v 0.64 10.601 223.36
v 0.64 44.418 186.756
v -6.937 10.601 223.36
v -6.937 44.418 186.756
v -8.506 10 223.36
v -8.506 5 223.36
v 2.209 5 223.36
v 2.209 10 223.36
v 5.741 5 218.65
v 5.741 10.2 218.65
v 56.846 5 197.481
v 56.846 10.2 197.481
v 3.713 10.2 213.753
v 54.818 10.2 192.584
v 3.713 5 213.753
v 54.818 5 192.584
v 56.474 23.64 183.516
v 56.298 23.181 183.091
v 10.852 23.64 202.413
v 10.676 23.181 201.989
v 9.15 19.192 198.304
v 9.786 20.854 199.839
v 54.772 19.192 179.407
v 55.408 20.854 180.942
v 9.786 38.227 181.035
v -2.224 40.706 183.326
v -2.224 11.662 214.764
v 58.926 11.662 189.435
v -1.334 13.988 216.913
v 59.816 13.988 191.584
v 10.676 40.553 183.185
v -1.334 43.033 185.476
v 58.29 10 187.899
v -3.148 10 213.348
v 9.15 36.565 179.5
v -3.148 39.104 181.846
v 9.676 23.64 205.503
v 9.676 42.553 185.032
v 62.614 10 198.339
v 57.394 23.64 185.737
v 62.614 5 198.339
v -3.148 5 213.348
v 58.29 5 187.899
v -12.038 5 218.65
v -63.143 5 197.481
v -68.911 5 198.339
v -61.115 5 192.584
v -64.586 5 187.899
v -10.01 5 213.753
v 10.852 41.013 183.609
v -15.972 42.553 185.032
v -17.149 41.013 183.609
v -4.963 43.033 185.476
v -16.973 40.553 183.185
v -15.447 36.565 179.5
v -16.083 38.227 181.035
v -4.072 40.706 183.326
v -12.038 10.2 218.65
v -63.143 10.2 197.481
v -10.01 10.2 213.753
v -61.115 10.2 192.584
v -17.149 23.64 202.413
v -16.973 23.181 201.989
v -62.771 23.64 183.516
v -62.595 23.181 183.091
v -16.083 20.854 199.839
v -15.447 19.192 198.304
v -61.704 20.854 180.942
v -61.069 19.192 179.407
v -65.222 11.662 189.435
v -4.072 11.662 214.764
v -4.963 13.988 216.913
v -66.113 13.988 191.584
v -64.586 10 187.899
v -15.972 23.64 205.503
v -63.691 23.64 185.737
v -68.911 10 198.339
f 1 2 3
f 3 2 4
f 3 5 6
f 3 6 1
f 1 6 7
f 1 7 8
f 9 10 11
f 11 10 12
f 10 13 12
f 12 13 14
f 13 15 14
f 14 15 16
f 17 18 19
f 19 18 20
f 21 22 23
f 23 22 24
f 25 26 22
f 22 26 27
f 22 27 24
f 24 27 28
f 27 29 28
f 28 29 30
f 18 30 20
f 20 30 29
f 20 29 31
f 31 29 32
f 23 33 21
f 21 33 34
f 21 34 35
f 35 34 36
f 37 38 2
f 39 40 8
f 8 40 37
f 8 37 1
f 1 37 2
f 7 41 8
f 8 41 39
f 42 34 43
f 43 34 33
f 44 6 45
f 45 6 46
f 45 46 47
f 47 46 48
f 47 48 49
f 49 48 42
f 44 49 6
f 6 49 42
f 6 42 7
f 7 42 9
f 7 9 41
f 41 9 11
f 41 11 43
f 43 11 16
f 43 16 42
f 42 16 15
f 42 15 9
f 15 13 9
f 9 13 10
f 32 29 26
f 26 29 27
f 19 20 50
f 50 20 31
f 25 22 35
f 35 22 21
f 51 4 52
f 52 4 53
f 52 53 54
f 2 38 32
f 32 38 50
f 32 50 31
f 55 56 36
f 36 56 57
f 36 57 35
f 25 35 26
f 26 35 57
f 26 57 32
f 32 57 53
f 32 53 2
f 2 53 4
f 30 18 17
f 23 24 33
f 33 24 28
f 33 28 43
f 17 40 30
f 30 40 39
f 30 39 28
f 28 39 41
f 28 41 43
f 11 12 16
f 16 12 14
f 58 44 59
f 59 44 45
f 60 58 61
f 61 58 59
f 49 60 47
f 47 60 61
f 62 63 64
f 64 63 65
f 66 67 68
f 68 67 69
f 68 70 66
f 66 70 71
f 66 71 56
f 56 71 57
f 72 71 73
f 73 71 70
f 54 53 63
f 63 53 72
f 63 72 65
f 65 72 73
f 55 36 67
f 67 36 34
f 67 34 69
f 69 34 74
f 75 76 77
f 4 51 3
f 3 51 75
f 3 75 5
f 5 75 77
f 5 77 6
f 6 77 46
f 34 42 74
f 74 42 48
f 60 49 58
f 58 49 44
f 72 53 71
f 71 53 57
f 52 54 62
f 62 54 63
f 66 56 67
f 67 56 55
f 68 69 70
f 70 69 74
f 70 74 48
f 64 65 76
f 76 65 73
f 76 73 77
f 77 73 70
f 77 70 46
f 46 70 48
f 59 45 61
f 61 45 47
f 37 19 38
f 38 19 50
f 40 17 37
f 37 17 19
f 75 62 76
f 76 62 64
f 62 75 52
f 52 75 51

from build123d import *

# Parameters (mm, degrees)
SKETCH1_W                = 214.0895226738578
SKETCH1_H                = 271.0335668448457
BOSS_EXTRUDE1_DEPTH      = 10
SKETCH3_W                = 107.0447613369289
SKETCH3_H                = 271.0335668448457
CUT_EXTRUDE1_DEPTH       = 252.25359017903727
CUT_EXTRUDE2_DEPTH       = 249.55642867000518
BOSS_EXTRUDE3_DEPTH      = 40
CUT_EXTRUDE3_START       = -165.689856025
CUT_EXTRUDE3_DEPTH       = 205.862728092
CUT_EXTRUDE4_DEPTH       = 250.9605933606232
CUT_EXTRUDE5_DEPTH       = 250.96059336062322
BOSS_EXTRUDE5_DEPTH      = 45.000000000000014
CUT_EXTRUDE7_DEPTH       = 253.78419033582136
CUT_EXTRUDE9_DEPTH       = 253.78419033582136
CUT_EXTRUDE10_DEPTH      = 105
BOSS_EXTRUDE6_DEPTH      = 13.546139965279659
BOSS_EXTRUDE7_DEPTH      = 30
CUT_EXTRUDE12_DEPTH      = 30
CUT_EXTRUDE13_DEPTH      = 30
CUT_EXTRUDE14_DEPTH      = 30
CUT_EXTRUDE14_DEPTH_BACK = 101.66514829221025
BOSS_EXTRUDE8_DEPTH      = 5.2
CHAMFER1_START           = 223.359720619
CHAMFER1_OUTLINE_W       = 14
CHAMFER1_OUTLINE_H       = 9.000000000000002
CHAMFER1_DEPTH           = 3.640279381
CHAMFER3_START           = 159.35770891
CHAMFER3_OUTLINE_W       = 10
CHAMFER3_OUTLINE_H       = 51.999999999999986
CHAMFER3_DEPTH           = 1.64229109
CHAMFER4_SIZE            = 1.7


with BuildPart() as part:
    # Sketch1 → Boss-Extrude1 (new body)
    with BuildSketch(Plane(origin=(0, 0, 0), x_dir=(1, 0, 0), z_dir=(0, 1, 0))):
        with Locations((-3.148375333439077, -90.06211454589605)):
            Rectangle(SKETCH1_W, SKETCH1_H)
    extrude(amount=BOSS_EXTRUDE1_DEPTH)

    # Sketch3 → Cut-Extrude1 (cut, through all)
    with BuildSketch(Plane(origin=(0, 10, 0), x_dir=(1, 0, 0), z_dir=(0, 1, 0))):
        with Locations((-56.67075600190353, -90.06211454589605)):
            Rectangle(SKETCH3_W, SKETCH3_H)
    extrude(amount=-CUT_EXTRUDE1_DEPTH, mode=Mode.SUBTRACT)

    # Sketch4 → Cut-Extrude2 (cut, through all)
    with BuildSketch(Plane(origin=(0, 10, 0), x_dir=(1, 0, 0), z_dir=(0, 1, 0))):
        Polygon((103.89638600348982, -181.2395060415717), (100.8349185445691, -173.8484697814814), (9.99658424143476, 45.454668876526796), (103.89638600348982, 45.454668876526796), align=None)
    extrude(amount=-CUT_EXTRUDE2_DEPTH, mode=Mode.SUBTRACT)

    # Sketch6 → Boss-Extrude3 (add, along a direction that is not the sketch's normal)
    with BuildSketch(Plane(origin=(0, 10, 0), x_dir=(1, 0, 0), z_dir=(0, 1, 0))):
        Polygon((99.57206321776432, -170.7996673241942), (103.89638600348982, -181.2395060415717), (-3.148375333439077, -225.57889796831887), (-3.148375333439077, -213.34786610501484), align=None)
    extrude(amount=BOSS_EXTRUDE3_DEPTH, dir=(-0.2705980500730979, 0.7071067811865489, -0.6532814824381872))

    # Cut-Extrude3: read off the stored shape, not the designer's step
    # Cut-Extrude3 outline → Cut-Extrude3 (cut)
    with BuildSketch(Plane(origin=(0, 0, 0), x_dir=(1, 0, 0), z_dir=(0, 0.6785983445458481, -0.7345095552677544)).offset(CUT_EXTRUDE3_START)):
        Polygon((-3.148375333, -165), (-3.148375333, -152.122604304), (-13.972297336, -155.165042499), (-15, -155.45391393), (-15, -165), align=None)
    extrude(amount=CUT_EXTRUDE3_DEPTH, mode=Mode.SUBTRACT)

    # Sketch8 → Cut-Extrude4 (cut, through all)
    with BuildSketch(Plane(origin=(0, 10, 0), x_dir=(1, 0, 0), z_dir=(0, 1, 0))):
        Polygon((-3.1483753334390765, -225.5788979683189), (103.89638600348982, -181.2395060415717), (103.89638600348982, -225.57889796831887), align=None)
    extrude(amount=-CUT_EXTRUDE4_DEPTH, mode=Mode.SUBTRACT)

    # Sketch9 → Cut-Extrude5 (cut, through all)
    with BuildSketch(Plane(origin=(0, 10, 0), x_dir=(1, 0, 0), z_dir=(0, 1, 0))):
        Polygon((-3.1483753334390765, -213.34786610501484), (99.57206321776434, -170.7996673241942), (9.99658424143476, 45.454668876526796), (-3.148375333439077, 45.454668876526796), align=None)
    extrude(amount=-CUT_EXTRUDE5_DEPTH, mode=Mode.SUBTRACT)

    # Sketch13 → Boss-Extrude5 (add)
    with BuildSketch(Plane.XZ):
        Polygon((-3.1483753334390765, 225.5788979683189), (-3.1483753334390765, 213.34786610501484), (99.57206321776434, 170.7996673241942), (103.89638600348982, 181.23950604157167), align=None)
    extrude(amount=BOSS_EXTRUDE5_DEPTH)

    # Sketch14 → Cut-Extrude7 (cut, through all)
    with BuildSketch(Plane(origin=(24.60327067321852, 0, -10.191008391583336), x_dir=(-0.38268343236508967, 0, -0.9238795325112868), z_dir=(0.9238795325112867, 0, -0.3826834323650896))):
        Polygon((-178.9186244729457, 38.28427124746196), (-173.2686244729457, 32.63427124746195), (-167.6186244729457, 38.28427124746196), align=None)
    extrude(amount=-CUT_EXTRUDE7_DEPTH, mode=Mode.SUBTRACT)

    # Sketch21 → Cut-Extrude9 (cut, through all)
    with BuildSketch(Plane(origin=(24.60327067321852, 0, -10.191008391583336), x_dir=(-0.38268343236508967, 0, -0.9238795325112868), z_dir=(0.9238795325112867, 0, -0.3826834323650896))):
        Polygon((-178.9186244729457, 38.28427124746196), (-173.26862447294567, 32.63427124746195), (-186.71050756498246, 19.192388155425135), (-188.37220850077088, 20.854089091213513), (-197.564596656196, 11.661700935788378), (-199.8911947846192, 13.988299064211581), (-190.69880662919408, 23.180687219636717), (-192.3605075649825, 24.84238815542509), align=None)
    extrude(amount=-CUT_EXTRUDE9_DEPTH, mode=Mode.SUBTRACT)

    # Sketch26 → Cut-Extrude10 (cut)
    with BuildSketch(Plane(origin=(24.60327067321852, 0, -10.191008391583336), x_dir=(-0.38268343236508967, 0, -0.9238795325112868), z_dir=(0.9238795325112867, 0, -0.3826834323650896))):
        Polygon((-195.9028957204076, -45.000000000000014), (-207.2028957204075, -45.000000000000014), (-207.20289572040753, 4.999999999999999), (-204.20289572040753, 4.999999999999999), (-204.20289572040753, 10.2), (-198.9028957204076, 10.200000000000001), (-198.9028957204076, 5), (-195.9028957204076, 5), align=None)
    extrude(amount=-CUT_EXTRUDE10_DEPTH, mode=Mode.SUBTRACT)

    # Sketch27 → Boss-Extrude6 (add, along a direction that is not the sketch's normal)
    with BuildSketch(Plane(origin=(35.57097911044696, -92.95144786020374, 85.87594019533113), x_dir=(0.9626924198811571, 0.19875685341551327, -0.18362738881693624), z_dir=(-0.2705980500730966, 0.7071067811865525, -0.6532814824381838))):
        Polygon((-40.21986009681666, -165.94075499699434), (-39.260177114555994, -165.65967035927952), (-38.33532246822035, -168.81732163602243), (-40.219860096816646, -169.36928992803706), align=None)
    extrude(amount=BOSS_EXTRUDE6_DEPTH, dir=(0, 0.6785983445458494, -0.7345095552677533))

    # Sketch28 → Boss-Extrude7 (add, along a direction that is not the sketch's normal)
    with BuildSketch(Plane(origin=(32.05320445949652, -83.75905970477851, 77.38328092363429), x_dir=(0.9626924198811573, 0.1987568534155131, -0.18362738881693524), z_dir=(-0.27059805007309584, 0.7071067811865541, -0.6532814824381823))):
        Polygon((-23.13019805487444, -160.93530887309606), (-23.79074695350427, -158.6800538647835), (-36.56575980652385, -162.4217684996877), (-36.565759806523836, -170.74775403356227), (-21.544794509909032, -166.34821515815156), (-22.205343408538862, -164.09296014983897), (-34.68122217792752, -167.7470604401317), (-35.606076824263106, -164.58940916338878), align=None)
    extrude(amount=BOSS_EXTRUDE7_DEPTH, dir=(0, 0.6785983445458483, -0.7345095552677544))

    # Sketch29 → Cut-Extrude12 (cut)
    with BuildSketch(Plane(origin=(41.559974826961344, 108.60144786020382, 100.33465487913432), x_dir=(0.9626924198811563, -0.1987568534155138, -0.18362738881693985), z_dir=(0.2705980500730995, 0.7071067811865461, 0.6532814824381895))):
        Polygon((-46.44094960872295, -107.03174707988727), (-31.419984312108156, -107.03174707988727), (-31.41998431210815, -102.63220820447661), align=None)
    extrude(amount=-CUT_EXTRUDE12_DEPTH, mode=Mode.SUBTRACT)

    # Sketch30 → Cut-Extrude13 (cut)
    with BuildSketch(Plane(origin=(-72.40408024046648, 0, 29.990752006750984), x_dir=(-0.3826834323650857, 0, -0.9238795325112884), z_dir=(0.9238795325112884, 0, -0.3826834323650857))):
        Polygon((-207.20289572040787, 4.610357956966736), (-207.20289572040795, -45.000000000000014), (-195.90289572040788, -45.000000000000014), (-195.90289572040788, 4.6103579569667374), (-195.9028957204076, 5), (-207.20289572040755, 4.999999999999999), align=None)
    extrude(amount=-CUT_EXTRUDE13_DEPTH, mode=Mode.SUBTRACT)

    # Sketch31 → Cut-Extrude14 (cut, two sides: drawn at the far end of the back side and taken through both)
    with BuildSketch(Plane(origin=(74.968792544546, 0, 180.99067571577757), x_dir=(-0.9238795325112865, 0, 0.38268343236509056), z_dir=(-0.38268343236509056, 0, -0.9238795325112865)).offset(-CUT_EXTRUDE14_DEPTH_BACK)):
        Polygon((18.0534132200626, -1.4270293234233122), (-26.630388278374163, -1.4270293234233173), (-26.630388278374163, 30.311404517874507), (18.0534132200626, 30.311404517874507), align=None)
    extrude(amount=CUT_EXTRUDE14_DEPTH + CUT_EXTRUDE14_DEPTH_BACK, mode=Mode.SUBTRACT)

    # Sketch33 → Boss-Extrude8 (add)
    with BuildSketch(Plane(origin=(1.28e-15, 10.200000000000065, 3.08e-15), x_dir=(-1, 1.3e-16, 0), z_dir=(-1.3e-16, -1, -3e-16))):
        Polygon((-61.46588606719166, -195.56761797257994), (-56.84648840463523, -197.48103513440537), (-54.81826621310026, -192.5844736120956), (-59.437663875656696, -190.67105645027016), align=None)
    extrude(amount=BOSS_EXTRUDE8_DEPTH)

    # Mirror4: part across plane


with BuildPart() as part_1:
    add(part.part)
    add(part.part.mirror(Plane(origin=(-3.148375333439077, 0, 225.57889796831887), x_dir=(0, 0, 1), z_dir=(1, 0, 0))))

    # Chamfer1: read off the stored shape, not the designer's step
    # Chamfer1 outline → Chamfer1 (cut)
    with BuildSketch(Plane.XY.offset(CHAMFER1_START)):
        with Locations((-3, 9.5)):
            Rectangle(CHAMFER1_OUTLINE_W, CHAMFER1_OUTLINE_H)
    extrude(amount=CHAMFER1_DEPTH, mode=Mode.SUBTRACT)

    # Chamfer3: read off the stored shape, not the designer's step
    # Chamfer3 outline → Chamfer3 (cut)
    with BuildSketch(Plane(origin=(0, 0, 0), x_dir=(1, 0, 0), z_dir=(0, 0.7345095552677543, 0.6785983445458483)).offset(CHAMFER3_START)):
        with Locations((-3, -132)):
            Rectangle(CHAMFER3_OUTLINE_W, CHAMFER3_OUTLINE_H)
    extrude(amount=CHAMFER3_DEPTH, mode=Mode.SUBTRACT)

    # Chamfer4
    chamfer4_edges = [part_1.edges().sort_by_distance(p)[0] for p in [
        (34.12309720869192, 24.84238815542509, 194.07526337860742),
        (11.312194096909927, 33.52860342480338, 194.1219571598504),
        (-17.60894476378808, 33.52860342480338, 194.1219571598504),
        (-40.41984787557007, 24.84238815542509, 194.07526337860742),
    ]]
    chamfer(chamfer4_edges, length=CHAMFER4_SIZE)


solid = part_1.part
